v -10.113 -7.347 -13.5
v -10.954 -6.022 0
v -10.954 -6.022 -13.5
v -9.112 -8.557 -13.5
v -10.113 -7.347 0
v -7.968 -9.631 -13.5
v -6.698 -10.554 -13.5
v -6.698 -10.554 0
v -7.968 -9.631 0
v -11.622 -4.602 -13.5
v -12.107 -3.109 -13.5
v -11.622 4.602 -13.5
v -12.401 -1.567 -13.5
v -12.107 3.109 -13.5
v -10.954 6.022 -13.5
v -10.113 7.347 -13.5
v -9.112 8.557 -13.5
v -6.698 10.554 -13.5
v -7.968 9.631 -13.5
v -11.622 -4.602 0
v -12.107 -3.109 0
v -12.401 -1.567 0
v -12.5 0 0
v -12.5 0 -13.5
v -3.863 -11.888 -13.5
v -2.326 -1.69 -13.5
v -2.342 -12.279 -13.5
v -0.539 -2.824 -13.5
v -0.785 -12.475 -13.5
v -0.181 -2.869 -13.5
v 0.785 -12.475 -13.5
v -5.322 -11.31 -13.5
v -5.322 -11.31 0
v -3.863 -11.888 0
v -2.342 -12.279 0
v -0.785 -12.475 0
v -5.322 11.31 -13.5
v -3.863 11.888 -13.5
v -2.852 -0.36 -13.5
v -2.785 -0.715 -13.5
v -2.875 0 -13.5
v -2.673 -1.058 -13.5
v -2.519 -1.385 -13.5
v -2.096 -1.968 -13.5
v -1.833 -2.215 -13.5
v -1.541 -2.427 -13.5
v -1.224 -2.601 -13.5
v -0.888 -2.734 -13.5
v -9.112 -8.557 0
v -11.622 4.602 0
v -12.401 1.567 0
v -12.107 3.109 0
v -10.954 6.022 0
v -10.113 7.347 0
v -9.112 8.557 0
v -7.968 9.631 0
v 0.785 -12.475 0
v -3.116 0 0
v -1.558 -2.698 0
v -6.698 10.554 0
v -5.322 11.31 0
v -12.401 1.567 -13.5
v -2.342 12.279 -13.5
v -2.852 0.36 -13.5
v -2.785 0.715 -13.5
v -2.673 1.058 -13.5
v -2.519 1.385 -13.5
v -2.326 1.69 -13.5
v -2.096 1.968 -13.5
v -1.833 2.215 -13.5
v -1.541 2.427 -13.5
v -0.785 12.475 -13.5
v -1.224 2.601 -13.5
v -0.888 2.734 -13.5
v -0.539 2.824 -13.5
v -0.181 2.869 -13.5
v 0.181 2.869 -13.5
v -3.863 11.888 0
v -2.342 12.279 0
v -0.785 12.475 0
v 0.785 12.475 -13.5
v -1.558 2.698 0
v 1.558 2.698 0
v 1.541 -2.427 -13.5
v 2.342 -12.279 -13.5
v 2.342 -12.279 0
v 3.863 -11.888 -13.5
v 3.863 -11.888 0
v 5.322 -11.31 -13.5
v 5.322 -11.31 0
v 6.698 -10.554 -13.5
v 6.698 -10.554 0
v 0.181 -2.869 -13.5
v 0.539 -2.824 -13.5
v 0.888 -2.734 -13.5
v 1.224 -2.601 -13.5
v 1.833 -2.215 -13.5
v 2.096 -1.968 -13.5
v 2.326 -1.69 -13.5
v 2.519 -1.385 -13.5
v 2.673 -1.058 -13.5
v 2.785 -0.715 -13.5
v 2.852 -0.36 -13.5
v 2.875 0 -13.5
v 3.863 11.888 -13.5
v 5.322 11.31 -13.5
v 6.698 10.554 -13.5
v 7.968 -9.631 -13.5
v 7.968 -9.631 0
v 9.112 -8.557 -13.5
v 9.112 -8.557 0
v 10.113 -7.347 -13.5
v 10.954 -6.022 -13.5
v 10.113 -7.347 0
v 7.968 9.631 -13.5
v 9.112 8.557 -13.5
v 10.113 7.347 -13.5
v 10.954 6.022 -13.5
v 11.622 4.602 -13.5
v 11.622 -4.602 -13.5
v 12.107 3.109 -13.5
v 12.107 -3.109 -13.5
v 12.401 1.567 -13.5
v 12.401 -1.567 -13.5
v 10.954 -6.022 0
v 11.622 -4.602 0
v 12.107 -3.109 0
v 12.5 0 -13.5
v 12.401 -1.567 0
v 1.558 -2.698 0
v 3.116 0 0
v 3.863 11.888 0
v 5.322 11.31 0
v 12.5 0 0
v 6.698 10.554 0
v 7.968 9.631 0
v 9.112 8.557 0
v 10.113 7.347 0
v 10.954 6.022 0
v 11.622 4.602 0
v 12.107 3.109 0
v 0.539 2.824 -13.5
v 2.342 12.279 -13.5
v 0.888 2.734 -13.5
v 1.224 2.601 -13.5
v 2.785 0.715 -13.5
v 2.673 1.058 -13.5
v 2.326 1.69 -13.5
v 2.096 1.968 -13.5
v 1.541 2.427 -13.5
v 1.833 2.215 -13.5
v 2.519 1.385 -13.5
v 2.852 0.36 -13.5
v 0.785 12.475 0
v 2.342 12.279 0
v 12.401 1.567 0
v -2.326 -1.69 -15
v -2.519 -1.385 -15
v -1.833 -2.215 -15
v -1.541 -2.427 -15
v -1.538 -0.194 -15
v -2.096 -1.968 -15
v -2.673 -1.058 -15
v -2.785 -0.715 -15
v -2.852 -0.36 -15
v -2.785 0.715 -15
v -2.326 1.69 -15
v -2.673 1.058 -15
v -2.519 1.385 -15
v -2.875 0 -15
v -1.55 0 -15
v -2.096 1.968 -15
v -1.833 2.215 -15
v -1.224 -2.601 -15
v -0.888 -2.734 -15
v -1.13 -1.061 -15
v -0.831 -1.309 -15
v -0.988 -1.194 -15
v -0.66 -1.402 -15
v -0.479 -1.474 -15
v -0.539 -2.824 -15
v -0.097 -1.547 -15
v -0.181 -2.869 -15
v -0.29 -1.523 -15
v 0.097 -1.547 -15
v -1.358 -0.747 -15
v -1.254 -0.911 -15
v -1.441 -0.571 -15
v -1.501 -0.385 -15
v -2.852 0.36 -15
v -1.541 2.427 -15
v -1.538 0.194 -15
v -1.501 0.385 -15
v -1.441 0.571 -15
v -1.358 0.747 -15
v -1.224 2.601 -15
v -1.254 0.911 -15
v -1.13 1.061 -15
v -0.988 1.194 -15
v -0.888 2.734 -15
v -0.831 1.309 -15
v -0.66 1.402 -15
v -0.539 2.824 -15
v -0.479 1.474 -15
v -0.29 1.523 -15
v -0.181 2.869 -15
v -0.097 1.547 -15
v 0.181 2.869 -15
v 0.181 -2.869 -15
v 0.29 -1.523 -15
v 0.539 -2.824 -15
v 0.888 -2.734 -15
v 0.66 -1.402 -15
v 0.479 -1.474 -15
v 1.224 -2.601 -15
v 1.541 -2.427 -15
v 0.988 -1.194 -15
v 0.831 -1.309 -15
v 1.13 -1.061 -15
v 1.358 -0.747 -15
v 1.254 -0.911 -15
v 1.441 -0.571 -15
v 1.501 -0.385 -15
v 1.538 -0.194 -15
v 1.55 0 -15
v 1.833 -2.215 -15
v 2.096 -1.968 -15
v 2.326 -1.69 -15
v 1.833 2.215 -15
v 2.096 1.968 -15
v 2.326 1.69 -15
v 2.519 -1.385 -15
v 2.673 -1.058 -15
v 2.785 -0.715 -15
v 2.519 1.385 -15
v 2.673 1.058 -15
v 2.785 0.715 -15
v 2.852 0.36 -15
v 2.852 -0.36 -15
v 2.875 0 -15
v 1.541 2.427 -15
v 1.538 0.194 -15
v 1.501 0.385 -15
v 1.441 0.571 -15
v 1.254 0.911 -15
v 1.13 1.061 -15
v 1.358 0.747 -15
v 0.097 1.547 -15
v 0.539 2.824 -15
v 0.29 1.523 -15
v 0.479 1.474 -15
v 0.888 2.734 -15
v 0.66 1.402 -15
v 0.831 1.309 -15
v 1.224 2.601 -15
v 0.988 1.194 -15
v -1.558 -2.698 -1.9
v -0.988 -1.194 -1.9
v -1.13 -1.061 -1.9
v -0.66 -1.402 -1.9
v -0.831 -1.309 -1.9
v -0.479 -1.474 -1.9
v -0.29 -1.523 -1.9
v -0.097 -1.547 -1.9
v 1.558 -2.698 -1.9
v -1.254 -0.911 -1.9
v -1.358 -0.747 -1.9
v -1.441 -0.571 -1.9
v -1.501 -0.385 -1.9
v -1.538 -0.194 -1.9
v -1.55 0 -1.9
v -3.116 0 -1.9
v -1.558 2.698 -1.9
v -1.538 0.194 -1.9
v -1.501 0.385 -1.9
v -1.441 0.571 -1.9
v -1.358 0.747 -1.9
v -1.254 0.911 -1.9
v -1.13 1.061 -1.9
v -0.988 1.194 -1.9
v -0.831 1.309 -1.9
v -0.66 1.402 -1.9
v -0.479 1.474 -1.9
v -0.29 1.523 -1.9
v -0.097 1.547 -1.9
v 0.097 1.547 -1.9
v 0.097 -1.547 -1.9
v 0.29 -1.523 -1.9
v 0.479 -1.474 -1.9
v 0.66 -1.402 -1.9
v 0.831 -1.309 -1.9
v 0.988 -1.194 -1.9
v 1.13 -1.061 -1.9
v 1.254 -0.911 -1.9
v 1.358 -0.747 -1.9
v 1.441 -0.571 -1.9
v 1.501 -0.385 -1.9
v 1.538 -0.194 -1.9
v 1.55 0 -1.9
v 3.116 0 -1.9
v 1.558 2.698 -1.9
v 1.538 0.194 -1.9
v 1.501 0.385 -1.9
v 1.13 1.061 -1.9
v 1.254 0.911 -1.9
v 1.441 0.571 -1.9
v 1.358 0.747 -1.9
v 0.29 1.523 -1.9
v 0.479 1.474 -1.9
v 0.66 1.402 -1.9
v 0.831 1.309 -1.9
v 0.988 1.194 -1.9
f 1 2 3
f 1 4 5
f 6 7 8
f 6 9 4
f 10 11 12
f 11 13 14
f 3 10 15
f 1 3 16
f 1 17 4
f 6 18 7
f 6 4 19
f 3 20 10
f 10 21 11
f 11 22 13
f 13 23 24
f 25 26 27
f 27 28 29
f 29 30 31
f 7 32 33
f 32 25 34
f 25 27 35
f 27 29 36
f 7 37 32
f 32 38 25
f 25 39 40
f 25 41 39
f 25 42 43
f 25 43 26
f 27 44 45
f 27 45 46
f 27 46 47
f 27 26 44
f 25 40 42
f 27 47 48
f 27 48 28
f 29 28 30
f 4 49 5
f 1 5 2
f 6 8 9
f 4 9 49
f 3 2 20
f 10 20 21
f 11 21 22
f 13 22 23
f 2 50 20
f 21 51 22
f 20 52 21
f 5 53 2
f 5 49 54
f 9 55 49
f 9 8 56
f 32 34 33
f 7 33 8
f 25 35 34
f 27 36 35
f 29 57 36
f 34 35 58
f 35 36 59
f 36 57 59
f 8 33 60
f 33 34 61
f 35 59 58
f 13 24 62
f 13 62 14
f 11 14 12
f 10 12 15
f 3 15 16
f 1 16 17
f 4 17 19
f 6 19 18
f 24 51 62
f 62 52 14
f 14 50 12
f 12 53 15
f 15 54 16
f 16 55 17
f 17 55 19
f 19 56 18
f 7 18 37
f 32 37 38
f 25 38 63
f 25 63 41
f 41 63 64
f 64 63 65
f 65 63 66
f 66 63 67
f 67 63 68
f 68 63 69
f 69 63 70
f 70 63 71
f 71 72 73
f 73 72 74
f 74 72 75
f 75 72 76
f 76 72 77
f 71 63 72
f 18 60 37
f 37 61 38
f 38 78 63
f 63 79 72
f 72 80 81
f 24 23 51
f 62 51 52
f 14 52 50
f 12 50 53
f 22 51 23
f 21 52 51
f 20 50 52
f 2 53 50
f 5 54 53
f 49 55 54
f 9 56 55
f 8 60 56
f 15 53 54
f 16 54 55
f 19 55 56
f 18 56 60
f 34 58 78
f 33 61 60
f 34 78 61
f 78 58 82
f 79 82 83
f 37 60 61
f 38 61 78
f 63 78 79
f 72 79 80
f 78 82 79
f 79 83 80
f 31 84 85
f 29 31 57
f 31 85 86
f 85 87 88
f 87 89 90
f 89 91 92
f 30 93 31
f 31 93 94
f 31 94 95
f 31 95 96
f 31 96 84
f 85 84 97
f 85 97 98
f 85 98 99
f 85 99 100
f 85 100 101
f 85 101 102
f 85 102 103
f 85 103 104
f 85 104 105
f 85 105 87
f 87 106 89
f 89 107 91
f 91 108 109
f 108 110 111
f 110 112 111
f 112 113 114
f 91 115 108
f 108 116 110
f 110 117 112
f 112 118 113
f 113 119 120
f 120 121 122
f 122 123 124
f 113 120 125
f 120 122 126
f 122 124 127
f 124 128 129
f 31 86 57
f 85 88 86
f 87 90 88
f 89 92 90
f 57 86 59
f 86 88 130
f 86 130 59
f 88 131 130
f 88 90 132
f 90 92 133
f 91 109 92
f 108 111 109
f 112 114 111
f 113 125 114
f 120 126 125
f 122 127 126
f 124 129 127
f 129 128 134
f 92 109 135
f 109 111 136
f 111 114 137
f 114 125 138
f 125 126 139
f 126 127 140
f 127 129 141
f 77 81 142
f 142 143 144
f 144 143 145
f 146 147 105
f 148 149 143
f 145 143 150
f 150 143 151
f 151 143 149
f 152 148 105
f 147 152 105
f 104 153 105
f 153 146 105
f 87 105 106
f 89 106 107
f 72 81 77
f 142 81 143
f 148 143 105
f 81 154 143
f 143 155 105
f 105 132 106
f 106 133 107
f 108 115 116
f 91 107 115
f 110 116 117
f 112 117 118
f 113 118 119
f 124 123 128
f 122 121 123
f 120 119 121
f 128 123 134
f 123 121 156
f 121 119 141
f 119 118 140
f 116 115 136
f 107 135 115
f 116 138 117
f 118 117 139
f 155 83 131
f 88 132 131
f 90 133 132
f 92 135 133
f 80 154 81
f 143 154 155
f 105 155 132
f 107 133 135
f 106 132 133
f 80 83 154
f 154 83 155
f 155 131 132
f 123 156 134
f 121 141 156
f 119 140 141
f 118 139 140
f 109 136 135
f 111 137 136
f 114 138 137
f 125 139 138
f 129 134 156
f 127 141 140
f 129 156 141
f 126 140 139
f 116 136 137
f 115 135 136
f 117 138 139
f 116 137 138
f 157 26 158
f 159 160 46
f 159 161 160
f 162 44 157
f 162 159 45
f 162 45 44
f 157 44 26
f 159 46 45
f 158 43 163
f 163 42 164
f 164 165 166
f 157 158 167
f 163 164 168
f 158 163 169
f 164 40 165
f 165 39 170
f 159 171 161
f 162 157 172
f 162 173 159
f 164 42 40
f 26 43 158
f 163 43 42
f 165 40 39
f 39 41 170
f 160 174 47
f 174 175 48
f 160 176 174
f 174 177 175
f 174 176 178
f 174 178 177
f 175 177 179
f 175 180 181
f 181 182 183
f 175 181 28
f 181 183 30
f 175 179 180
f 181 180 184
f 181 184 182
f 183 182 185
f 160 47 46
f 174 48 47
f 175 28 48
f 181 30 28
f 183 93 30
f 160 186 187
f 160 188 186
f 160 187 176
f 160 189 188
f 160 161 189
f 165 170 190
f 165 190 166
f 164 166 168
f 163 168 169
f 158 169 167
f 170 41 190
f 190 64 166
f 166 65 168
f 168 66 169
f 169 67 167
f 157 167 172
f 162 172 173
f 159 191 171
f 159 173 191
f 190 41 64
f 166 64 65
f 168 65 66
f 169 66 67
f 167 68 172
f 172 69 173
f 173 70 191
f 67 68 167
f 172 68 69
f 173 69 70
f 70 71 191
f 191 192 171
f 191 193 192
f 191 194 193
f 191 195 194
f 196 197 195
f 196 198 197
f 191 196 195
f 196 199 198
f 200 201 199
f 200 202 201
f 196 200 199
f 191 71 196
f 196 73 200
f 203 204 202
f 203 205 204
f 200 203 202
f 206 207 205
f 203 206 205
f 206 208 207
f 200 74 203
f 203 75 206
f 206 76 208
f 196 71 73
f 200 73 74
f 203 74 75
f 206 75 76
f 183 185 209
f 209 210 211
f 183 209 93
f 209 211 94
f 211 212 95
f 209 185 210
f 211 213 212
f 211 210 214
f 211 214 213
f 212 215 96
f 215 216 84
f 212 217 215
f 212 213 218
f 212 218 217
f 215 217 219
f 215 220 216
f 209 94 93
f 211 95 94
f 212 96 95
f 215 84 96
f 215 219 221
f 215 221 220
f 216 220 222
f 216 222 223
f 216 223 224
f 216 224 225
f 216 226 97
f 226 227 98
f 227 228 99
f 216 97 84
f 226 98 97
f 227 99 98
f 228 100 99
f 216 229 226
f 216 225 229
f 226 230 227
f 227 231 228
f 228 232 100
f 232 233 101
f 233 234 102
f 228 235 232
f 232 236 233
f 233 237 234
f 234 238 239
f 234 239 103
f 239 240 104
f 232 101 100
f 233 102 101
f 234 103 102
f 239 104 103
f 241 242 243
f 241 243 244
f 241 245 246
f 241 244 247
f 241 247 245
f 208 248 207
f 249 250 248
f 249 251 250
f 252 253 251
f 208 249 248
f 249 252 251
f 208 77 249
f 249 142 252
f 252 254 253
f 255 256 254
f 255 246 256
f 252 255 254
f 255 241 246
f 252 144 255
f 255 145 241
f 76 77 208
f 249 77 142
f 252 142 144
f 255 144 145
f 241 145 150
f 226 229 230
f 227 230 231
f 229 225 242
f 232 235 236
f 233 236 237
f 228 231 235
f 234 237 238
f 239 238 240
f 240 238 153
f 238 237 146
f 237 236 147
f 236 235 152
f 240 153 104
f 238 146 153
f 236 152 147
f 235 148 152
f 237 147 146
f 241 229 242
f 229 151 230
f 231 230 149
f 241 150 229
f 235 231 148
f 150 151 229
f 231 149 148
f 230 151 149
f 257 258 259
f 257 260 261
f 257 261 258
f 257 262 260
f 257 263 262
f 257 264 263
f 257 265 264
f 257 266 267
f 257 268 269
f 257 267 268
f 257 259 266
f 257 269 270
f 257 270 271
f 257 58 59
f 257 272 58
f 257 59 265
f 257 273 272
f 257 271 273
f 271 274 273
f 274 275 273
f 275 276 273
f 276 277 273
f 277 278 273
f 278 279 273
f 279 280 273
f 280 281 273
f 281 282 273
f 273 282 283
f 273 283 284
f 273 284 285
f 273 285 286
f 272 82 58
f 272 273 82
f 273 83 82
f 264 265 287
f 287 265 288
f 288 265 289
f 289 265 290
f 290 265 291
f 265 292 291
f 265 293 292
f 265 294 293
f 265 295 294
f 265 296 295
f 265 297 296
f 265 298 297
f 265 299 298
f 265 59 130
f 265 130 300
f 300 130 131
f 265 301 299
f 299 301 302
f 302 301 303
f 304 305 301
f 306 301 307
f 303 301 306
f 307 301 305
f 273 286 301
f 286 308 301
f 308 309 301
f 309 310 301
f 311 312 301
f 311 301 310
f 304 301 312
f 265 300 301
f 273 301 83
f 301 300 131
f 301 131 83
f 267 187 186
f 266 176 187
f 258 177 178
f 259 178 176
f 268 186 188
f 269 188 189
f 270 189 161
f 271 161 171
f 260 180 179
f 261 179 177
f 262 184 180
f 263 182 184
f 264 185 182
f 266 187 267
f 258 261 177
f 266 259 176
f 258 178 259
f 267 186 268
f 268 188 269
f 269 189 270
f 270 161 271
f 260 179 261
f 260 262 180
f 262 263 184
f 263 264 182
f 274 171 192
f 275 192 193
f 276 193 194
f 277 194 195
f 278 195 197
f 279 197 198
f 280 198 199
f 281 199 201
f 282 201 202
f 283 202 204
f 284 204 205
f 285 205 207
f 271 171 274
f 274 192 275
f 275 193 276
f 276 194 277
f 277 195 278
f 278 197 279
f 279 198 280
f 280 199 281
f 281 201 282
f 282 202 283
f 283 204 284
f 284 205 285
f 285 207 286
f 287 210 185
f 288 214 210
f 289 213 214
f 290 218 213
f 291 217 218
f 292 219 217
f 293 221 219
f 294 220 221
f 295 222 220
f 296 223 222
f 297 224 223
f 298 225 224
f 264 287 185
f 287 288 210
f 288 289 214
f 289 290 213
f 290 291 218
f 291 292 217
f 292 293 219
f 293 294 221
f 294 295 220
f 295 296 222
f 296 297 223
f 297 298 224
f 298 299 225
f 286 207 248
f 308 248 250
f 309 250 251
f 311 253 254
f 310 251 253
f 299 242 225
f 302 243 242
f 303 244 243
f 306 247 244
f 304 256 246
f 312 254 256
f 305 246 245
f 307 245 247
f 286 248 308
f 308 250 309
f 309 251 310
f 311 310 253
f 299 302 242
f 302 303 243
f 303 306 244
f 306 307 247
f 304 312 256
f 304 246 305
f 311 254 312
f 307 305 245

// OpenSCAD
$fn = 50;

difference() {
	union() {
		translate(v = [0, 0, -13.5]) {
			cylinder(h = 13.5, r = 12.5);
		}
		#translate(v = [0, 0, -15.0]) {
			cylinder(h = 15, r = 2.875);
		}
	}
	union() {
		translate(v = [0, 0, 0]) {
			rotate(a = [0, 0, 0]) {
				difference() {
					union() {
						translate(v = [0, 0, -1.9]) {
							linear_extrude(height = 1.9) {
								polygon(points = [[3.1158, 0.0], [1.5579000000000005, 2.698361953111554], [-1.5578999999999994, 2.6983619531115544], [-3.1158, 3.815754496783323e-16], [-1.5579000000000014, -2.6983619531115535], [1.557899999999998, -2.6983619531115552]]);
							}
						}
					}
					union();
				}
			}
		}
		#translate(v = [0, 0, -100.0]) {
			cylinder(h = 200, r = 1.55);
		}
	}
}
